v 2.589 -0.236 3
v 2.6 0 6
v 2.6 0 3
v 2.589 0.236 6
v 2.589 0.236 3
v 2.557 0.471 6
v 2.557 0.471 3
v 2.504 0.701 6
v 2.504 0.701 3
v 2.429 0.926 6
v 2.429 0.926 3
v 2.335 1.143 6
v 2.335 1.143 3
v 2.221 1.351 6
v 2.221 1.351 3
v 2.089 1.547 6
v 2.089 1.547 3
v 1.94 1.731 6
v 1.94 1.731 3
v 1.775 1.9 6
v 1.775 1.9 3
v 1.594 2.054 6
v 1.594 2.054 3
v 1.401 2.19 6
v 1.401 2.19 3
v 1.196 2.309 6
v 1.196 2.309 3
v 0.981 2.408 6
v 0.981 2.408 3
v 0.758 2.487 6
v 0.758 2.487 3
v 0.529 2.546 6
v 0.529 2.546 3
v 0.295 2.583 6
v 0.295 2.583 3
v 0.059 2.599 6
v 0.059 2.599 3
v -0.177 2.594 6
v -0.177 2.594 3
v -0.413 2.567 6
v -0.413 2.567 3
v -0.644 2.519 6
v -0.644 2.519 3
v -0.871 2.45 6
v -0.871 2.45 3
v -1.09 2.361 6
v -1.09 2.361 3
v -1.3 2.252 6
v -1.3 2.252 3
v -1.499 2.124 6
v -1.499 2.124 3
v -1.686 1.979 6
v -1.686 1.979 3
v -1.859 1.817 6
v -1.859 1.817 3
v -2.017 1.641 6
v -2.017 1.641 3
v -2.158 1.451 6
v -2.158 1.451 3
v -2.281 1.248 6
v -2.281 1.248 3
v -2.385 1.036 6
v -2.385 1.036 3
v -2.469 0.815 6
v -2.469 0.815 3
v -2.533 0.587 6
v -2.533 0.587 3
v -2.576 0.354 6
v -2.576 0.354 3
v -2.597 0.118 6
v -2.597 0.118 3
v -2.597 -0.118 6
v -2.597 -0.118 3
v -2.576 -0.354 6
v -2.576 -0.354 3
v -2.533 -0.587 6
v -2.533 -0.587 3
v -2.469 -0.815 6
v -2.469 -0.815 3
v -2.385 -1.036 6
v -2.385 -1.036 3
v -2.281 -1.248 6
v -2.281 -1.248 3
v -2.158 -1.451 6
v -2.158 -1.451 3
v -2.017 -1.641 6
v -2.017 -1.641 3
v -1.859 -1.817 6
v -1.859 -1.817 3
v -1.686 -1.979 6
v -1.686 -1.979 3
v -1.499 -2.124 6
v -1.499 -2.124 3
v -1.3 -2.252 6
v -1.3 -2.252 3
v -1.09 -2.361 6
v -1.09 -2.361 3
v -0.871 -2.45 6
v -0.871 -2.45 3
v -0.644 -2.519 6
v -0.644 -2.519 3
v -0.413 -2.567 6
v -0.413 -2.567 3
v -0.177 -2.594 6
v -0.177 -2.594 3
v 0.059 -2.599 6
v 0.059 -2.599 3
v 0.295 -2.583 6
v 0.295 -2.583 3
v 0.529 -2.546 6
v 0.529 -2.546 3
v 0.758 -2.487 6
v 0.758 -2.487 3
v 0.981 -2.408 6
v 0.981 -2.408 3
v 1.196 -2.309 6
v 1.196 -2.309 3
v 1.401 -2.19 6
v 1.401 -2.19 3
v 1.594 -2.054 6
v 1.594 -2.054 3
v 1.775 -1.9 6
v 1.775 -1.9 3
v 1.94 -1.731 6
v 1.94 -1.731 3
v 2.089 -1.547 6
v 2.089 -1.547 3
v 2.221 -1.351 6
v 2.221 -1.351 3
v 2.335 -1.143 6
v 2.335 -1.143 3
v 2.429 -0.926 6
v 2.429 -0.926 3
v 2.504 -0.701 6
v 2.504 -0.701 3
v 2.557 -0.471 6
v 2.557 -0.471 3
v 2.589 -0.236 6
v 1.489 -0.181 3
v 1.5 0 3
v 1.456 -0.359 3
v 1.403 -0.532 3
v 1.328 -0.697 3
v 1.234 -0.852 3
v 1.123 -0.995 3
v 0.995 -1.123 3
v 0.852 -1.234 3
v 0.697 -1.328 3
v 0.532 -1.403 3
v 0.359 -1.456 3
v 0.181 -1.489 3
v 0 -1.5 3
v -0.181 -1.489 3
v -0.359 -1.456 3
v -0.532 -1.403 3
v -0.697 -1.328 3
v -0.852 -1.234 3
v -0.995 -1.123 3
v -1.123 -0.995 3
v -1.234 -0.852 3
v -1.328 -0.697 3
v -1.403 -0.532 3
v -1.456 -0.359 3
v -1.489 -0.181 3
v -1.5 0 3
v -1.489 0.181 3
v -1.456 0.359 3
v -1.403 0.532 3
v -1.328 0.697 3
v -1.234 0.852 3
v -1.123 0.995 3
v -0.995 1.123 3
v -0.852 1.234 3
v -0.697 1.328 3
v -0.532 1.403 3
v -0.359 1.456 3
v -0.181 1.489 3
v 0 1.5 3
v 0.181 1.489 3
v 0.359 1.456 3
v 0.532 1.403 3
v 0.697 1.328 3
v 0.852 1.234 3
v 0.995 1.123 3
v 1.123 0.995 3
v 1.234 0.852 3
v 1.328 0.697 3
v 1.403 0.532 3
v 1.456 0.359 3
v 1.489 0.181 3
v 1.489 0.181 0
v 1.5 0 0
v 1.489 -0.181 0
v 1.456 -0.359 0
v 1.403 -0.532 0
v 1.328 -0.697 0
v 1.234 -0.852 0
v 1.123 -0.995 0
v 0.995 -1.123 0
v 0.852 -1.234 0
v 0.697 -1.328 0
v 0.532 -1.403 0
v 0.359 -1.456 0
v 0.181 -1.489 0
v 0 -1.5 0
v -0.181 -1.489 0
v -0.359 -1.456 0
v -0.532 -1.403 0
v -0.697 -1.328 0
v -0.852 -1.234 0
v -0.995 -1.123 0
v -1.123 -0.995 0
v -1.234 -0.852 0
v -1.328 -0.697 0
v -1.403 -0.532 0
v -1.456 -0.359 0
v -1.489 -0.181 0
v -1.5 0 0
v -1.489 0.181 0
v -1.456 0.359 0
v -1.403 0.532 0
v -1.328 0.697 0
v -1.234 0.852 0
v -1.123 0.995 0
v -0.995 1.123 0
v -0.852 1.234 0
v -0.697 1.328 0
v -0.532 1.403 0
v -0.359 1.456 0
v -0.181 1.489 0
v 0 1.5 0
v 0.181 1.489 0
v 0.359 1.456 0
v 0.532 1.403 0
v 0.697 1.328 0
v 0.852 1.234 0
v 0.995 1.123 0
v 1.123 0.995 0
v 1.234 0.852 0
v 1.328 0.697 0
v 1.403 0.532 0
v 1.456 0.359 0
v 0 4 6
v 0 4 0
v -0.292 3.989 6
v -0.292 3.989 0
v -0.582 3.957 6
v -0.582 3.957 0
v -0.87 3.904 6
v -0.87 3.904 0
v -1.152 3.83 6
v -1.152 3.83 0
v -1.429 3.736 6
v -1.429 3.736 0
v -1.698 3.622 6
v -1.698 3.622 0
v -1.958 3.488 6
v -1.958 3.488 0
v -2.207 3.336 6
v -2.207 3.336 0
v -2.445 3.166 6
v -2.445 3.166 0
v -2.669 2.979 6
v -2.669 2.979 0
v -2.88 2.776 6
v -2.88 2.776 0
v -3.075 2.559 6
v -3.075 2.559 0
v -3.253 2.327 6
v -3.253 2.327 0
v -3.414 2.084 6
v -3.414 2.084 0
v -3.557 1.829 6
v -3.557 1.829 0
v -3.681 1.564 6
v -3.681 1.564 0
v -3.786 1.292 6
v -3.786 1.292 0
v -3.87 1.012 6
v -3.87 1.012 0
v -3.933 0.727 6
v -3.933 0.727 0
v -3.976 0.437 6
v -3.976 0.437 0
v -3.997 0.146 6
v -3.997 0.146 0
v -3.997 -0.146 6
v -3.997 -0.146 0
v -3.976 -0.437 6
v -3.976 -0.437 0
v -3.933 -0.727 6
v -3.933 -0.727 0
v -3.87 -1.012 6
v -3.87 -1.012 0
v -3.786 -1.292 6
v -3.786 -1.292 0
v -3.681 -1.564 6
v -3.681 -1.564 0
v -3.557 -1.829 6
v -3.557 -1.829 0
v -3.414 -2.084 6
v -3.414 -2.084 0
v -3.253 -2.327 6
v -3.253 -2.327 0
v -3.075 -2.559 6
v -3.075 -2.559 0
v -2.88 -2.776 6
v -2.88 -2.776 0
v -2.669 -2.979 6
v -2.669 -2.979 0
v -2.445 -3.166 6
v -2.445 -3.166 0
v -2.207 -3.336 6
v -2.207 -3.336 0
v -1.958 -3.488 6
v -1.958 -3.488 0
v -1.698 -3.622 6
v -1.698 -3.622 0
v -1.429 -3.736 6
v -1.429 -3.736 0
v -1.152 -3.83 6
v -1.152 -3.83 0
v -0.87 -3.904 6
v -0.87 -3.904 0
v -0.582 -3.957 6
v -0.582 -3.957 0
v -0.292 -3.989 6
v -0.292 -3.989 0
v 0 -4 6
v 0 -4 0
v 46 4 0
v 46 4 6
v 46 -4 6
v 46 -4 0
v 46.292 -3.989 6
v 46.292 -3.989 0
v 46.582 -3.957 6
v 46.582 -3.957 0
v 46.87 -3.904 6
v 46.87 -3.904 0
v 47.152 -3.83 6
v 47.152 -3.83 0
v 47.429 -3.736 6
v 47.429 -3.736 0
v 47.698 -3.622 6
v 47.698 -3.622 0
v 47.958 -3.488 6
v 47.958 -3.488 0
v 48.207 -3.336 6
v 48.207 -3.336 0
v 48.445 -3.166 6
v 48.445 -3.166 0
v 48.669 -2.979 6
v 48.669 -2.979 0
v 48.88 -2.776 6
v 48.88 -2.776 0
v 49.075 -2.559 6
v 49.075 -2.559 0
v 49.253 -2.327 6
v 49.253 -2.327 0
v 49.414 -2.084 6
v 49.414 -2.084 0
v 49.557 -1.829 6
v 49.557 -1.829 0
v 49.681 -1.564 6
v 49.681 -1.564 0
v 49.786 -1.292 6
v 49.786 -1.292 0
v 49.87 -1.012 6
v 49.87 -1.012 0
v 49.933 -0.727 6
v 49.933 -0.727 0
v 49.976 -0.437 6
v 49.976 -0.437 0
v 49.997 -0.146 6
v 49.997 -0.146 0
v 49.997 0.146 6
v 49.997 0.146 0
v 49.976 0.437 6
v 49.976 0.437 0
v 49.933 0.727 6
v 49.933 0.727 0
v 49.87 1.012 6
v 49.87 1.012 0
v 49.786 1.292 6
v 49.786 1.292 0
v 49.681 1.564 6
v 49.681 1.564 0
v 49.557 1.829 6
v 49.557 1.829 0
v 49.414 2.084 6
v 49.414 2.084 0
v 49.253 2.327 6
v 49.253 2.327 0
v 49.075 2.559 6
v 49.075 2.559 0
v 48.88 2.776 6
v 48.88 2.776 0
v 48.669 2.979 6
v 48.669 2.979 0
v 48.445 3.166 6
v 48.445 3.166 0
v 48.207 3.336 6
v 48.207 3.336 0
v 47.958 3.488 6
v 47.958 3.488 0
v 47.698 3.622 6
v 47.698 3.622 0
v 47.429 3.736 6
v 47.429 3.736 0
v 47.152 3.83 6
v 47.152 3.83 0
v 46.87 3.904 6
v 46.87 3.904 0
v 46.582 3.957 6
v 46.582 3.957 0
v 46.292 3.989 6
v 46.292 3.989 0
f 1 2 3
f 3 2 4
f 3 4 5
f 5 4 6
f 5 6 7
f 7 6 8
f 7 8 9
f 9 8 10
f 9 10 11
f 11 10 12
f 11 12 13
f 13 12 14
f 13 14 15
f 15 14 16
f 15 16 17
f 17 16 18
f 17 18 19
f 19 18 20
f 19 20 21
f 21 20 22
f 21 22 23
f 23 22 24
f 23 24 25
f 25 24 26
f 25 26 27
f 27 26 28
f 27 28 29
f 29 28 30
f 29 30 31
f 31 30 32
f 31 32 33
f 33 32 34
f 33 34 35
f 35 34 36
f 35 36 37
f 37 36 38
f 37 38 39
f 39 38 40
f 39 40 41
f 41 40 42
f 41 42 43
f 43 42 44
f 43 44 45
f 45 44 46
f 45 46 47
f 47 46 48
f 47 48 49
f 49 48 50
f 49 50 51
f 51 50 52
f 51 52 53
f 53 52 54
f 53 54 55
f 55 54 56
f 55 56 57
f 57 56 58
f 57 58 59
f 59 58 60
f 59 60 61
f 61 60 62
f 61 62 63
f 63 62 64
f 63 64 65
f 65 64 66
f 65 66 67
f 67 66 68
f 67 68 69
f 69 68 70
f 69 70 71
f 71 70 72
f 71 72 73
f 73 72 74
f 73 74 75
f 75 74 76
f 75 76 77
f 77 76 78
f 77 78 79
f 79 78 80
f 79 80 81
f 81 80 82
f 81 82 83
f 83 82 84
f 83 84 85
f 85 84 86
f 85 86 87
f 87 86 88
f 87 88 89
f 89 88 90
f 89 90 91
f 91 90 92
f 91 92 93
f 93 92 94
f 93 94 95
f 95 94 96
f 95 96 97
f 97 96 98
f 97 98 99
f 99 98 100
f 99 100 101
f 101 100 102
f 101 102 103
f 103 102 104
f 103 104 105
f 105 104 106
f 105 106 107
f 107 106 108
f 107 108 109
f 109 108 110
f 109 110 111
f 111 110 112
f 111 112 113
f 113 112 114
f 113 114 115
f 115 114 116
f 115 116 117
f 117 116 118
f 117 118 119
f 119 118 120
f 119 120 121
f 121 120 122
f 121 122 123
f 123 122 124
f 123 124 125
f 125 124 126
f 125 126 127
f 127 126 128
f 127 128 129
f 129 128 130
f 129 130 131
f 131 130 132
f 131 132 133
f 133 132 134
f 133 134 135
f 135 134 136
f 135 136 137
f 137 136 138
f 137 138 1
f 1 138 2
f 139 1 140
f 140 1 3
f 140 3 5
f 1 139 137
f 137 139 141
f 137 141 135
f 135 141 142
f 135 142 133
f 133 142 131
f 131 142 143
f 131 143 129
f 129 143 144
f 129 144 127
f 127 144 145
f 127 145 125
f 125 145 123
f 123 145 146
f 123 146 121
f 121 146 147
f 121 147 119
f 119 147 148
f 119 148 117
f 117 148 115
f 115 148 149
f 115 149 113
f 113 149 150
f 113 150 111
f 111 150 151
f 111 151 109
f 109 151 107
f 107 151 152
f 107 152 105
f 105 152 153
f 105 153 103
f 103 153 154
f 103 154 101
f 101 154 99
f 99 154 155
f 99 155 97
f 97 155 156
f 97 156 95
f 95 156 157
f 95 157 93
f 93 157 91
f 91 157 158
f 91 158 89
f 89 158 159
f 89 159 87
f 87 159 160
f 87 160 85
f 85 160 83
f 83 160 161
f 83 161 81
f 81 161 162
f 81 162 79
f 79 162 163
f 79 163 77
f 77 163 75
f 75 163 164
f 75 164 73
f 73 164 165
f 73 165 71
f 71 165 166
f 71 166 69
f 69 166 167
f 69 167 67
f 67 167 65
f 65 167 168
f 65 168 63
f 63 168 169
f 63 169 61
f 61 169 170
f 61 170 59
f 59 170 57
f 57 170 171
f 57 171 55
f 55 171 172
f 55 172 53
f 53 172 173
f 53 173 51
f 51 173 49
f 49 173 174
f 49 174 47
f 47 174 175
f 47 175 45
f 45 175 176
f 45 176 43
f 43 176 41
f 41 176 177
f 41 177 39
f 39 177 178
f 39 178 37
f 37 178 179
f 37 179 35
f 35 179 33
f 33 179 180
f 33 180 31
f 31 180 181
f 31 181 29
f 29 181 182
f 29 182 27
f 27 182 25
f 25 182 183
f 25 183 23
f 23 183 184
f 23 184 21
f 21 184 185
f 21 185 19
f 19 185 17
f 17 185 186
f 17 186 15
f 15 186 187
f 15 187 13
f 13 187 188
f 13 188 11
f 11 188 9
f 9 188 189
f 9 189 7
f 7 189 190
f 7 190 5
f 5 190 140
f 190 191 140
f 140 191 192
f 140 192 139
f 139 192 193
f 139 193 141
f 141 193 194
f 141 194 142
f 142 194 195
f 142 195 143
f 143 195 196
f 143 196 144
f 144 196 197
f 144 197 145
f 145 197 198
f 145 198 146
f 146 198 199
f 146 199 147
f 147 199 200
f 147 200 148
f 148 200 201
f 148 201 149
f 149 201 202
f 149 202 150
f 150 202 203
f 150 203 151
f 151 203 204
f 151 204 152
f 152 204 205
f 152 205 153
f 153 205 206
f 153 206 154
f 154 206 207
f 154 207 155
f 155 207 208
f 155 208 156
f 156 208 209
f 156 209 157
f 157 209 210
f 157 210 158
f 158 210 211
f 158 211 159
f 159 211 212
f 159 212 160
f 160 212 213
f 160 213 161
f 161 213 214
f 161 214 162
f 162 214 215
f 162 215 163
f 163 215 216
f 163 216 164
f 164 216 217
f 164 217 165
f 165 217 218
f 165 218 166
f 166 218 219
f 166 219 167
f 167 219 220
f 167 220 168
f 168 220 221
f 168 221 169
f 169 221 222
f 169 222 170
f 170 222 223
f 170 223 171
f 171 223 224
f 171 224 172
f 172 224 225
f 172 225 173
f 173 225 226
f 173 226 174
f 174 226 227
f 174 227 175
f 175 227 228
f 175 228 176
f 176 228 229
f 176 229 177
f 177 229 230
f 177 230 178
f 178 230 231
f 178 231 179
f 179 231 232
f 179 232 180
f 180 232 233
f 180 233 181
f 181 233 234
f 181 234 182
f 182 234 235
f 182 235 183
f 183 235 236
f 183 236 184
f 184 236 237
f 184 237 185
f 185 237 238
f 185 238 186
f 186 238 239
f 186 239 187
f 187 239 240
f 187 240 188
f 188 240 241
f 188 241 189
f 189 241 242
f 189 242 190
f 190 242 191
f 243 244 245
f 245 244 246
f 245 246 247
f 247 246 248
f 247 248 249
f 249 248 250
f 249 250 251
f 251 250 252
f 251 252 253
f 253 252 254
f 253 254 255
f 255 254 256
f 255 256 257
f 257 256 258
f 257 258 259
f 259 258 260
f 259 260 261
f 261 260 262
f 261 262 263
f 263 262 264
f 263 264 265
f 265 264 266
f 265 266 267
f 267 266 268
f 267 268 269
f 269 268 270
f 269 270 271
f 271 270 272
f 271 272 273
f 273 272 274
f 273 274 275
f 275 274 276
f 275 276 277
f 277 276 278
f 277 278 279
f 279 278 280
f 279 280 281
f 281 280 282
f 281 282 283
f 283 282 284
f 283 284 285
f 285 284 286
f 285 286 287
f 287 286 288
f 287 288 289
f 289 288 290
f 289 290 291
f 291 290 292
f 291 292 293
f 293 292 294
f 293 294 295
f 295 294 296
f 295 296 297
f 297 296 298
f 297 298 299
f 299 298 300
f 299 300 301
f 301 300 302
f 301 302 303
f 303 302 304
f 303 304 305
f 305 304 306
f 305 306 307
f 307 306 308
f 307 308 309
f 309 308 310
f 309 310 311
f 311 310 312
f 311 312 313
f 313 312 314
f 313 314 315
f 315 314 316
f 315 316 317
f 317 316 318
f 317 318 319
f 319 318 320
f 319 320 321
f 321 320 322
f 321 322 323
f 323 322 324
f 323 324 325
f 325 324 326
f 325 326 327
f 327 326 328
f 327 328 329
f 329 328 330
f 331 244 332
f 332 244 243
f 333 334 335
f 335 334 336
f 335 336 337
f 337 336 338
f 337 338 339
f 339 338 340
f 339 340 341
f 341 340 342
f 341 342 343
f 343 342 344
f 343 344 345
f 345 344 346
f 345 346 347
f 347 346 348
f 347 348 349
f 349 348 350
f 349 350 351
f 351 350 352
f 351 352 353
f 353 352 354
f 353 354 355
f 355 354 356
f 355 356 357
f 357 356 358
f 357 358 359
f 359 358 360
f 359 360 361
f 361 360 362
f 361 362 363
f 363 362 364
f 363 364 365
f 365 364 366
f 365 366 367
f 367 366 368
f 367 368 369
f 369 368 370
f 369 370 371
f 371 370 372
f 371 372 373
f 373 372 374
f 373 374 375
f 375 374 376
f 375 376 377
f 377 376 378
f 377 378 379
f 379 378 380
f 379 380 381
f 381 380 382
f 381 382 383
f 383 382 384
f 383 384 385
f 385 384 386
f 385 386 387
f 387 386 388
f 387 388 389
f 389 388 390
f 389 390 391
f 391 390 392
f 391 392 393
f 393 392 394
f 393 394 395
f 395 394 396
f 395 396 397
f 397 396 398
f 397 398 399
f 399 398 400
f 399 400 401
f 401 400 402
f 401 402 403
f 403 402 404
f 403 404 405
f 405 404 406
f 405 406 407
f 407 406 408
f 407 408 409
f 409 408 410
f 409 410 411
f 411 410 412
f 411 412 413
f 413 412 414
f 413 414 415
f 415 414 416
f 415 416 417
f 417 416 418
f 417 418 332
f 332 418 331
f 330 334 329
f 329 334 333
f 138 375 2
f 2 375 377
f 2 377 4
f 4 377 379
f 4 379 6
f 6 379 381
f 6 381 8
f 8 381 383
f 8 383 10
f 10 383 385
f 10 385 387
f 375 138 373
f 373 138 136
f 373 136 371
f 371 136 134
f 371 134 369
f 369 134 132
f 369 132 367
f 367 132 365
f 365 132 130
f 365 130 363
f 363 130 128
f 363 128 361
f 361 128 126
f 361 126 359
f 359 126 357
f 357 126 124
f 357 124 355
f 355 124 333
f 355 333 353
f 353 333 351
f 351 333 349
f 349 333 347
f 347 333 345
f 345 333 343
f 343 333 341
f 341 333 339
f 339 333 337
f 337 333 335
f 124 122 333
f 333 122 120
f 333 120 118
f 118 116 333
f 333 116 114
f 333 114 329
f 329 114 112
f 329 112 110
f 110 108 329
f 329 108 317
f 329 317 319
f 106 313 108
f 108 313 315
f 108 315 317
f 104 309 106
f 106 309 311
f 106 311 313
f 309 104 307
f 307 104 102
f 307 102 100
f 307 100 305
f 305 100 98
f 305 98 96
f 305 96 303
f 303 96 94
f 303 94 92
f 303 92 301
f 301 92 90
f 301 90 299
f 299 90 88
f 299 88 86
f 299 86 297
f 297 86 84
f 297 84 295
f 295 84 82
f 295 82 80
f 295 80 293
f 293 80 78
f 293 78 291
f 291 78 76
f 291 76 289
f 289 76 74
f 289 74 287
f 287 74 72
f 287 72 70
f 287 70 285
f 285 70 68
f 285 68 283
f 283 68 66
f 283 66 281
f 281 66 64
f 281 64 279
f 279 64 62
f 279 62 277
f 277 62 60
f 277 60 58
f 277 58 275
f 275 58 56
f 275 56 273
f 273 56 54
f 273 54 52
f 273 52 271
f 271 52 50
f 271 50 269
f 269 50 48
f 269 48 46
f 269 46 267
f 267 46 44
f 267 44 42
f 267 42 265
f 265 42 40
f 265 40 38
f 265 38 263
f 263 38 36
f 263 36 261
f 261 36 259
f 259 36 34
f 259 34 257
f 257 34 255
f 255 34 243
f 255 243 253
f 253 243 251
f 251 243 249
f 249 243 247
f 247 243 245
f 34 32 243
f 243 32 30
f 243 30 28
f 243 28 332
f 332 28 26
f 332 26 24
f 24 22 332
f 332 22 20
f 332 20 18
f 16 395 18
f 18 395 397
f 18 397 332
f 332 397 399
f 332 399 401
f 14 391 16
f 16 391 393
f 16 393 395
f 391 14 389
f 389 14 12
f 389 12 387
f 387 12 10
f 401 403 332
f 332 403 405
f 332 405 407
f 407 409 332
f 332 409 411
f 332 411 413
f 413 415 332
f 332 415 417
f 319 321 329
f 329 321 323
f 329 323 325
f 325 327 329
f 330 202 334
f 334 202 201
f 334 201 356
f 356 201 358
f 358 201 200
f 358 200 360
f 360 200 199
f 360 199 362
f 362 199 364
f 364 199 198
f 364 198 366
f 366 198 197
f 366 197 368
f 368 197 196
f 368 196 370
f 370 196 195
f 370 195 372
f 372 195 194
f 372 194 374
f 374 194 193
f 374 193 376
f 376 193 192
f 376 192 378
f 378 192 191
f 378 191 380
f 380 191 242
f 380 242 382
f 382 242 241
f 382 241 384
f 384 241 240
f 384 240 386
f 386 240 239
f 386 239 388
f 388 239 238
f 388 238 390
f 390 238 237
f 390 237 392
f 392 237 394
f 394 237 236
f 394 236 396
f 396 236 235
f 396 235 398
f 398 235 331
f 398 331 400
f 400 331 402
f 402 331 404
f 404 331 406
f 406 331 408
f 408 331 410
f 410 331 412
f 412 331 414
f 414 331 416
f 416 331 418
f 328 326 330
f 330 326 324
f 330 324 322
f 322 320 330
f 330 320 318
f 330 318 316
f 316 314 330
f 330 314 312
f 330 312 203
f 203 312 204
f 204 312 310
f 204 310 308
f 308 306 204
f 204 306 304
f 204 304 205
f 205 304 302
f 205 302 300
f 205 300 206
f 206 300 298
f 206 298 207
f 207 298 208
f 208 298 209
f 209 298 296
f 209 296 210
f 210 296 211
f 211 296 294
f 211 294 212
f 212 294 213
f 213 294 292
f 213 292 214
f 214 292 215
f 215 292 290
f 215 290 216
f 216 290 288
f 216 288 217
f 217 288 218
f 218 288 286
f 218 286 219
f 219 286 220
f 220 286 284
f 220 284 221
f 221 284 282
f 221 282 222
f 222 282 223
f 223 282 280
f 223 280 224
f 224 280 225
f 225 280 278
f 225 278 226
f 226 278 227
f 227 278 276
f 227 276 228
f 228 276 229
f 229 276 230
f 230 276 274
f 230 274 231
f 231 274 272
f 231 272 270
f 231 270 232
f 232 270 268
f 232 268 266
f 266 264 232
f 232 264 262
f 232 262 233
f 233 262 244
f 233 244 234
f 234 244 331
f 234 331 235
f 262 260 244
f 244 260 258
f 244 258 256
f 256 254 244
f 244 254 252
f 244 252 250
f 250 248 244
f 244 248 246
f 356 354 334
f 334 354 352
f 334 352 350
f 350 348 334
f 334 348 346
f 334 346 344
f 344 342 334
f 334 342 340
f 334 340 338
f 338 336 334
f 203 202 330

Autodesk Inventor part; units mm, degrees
ref_plane "YZ Plane" through (0, 0, 0) normal (1, 0, 0) x (0, 1, 0)
ref_plane "XZ Plane" through (0, 0, 0) normal (0, 1, 0) x (-1, 0, 0)
ref_plane "XY Plane" through (0, 0, 0) normal (0, 0, 1) x (1, 0, 0)
sketch "Sketch1" plane through (0, 0, 0) normal (0, 0, 1) x (1, 0, 0)
  line L0 (0, 0) -> (46, 0) construction
  line L1 (0, -4) -> (46, -4)
  line L2 (46, 4) -> (0, 4)
  arc A0 (0, 4) -> (0, -4) centre (0, 0) ccw
  arc A1 (46, -4) -> (46, 4) centre (46, 0) ccw
  circle A2 centre (0, 0) radius 1.5
  point P0 (23, 0)
  dimension "d0" = 46
  dimension "d1" = 3
extrude "Extrusion1" add sketch "Sketch1" along normal blind 6
sketch "Sketch2" plane through (0, 0, 6) normal (0, 0, 1) x (1, 0, 0)
  circle A0 centre (0, 0) radius 2.6
  dimension "d4" = 5.2
extrude "Extrusion2" cut sketch "Sketch2" against normal blind 3
properties part number "foot"
